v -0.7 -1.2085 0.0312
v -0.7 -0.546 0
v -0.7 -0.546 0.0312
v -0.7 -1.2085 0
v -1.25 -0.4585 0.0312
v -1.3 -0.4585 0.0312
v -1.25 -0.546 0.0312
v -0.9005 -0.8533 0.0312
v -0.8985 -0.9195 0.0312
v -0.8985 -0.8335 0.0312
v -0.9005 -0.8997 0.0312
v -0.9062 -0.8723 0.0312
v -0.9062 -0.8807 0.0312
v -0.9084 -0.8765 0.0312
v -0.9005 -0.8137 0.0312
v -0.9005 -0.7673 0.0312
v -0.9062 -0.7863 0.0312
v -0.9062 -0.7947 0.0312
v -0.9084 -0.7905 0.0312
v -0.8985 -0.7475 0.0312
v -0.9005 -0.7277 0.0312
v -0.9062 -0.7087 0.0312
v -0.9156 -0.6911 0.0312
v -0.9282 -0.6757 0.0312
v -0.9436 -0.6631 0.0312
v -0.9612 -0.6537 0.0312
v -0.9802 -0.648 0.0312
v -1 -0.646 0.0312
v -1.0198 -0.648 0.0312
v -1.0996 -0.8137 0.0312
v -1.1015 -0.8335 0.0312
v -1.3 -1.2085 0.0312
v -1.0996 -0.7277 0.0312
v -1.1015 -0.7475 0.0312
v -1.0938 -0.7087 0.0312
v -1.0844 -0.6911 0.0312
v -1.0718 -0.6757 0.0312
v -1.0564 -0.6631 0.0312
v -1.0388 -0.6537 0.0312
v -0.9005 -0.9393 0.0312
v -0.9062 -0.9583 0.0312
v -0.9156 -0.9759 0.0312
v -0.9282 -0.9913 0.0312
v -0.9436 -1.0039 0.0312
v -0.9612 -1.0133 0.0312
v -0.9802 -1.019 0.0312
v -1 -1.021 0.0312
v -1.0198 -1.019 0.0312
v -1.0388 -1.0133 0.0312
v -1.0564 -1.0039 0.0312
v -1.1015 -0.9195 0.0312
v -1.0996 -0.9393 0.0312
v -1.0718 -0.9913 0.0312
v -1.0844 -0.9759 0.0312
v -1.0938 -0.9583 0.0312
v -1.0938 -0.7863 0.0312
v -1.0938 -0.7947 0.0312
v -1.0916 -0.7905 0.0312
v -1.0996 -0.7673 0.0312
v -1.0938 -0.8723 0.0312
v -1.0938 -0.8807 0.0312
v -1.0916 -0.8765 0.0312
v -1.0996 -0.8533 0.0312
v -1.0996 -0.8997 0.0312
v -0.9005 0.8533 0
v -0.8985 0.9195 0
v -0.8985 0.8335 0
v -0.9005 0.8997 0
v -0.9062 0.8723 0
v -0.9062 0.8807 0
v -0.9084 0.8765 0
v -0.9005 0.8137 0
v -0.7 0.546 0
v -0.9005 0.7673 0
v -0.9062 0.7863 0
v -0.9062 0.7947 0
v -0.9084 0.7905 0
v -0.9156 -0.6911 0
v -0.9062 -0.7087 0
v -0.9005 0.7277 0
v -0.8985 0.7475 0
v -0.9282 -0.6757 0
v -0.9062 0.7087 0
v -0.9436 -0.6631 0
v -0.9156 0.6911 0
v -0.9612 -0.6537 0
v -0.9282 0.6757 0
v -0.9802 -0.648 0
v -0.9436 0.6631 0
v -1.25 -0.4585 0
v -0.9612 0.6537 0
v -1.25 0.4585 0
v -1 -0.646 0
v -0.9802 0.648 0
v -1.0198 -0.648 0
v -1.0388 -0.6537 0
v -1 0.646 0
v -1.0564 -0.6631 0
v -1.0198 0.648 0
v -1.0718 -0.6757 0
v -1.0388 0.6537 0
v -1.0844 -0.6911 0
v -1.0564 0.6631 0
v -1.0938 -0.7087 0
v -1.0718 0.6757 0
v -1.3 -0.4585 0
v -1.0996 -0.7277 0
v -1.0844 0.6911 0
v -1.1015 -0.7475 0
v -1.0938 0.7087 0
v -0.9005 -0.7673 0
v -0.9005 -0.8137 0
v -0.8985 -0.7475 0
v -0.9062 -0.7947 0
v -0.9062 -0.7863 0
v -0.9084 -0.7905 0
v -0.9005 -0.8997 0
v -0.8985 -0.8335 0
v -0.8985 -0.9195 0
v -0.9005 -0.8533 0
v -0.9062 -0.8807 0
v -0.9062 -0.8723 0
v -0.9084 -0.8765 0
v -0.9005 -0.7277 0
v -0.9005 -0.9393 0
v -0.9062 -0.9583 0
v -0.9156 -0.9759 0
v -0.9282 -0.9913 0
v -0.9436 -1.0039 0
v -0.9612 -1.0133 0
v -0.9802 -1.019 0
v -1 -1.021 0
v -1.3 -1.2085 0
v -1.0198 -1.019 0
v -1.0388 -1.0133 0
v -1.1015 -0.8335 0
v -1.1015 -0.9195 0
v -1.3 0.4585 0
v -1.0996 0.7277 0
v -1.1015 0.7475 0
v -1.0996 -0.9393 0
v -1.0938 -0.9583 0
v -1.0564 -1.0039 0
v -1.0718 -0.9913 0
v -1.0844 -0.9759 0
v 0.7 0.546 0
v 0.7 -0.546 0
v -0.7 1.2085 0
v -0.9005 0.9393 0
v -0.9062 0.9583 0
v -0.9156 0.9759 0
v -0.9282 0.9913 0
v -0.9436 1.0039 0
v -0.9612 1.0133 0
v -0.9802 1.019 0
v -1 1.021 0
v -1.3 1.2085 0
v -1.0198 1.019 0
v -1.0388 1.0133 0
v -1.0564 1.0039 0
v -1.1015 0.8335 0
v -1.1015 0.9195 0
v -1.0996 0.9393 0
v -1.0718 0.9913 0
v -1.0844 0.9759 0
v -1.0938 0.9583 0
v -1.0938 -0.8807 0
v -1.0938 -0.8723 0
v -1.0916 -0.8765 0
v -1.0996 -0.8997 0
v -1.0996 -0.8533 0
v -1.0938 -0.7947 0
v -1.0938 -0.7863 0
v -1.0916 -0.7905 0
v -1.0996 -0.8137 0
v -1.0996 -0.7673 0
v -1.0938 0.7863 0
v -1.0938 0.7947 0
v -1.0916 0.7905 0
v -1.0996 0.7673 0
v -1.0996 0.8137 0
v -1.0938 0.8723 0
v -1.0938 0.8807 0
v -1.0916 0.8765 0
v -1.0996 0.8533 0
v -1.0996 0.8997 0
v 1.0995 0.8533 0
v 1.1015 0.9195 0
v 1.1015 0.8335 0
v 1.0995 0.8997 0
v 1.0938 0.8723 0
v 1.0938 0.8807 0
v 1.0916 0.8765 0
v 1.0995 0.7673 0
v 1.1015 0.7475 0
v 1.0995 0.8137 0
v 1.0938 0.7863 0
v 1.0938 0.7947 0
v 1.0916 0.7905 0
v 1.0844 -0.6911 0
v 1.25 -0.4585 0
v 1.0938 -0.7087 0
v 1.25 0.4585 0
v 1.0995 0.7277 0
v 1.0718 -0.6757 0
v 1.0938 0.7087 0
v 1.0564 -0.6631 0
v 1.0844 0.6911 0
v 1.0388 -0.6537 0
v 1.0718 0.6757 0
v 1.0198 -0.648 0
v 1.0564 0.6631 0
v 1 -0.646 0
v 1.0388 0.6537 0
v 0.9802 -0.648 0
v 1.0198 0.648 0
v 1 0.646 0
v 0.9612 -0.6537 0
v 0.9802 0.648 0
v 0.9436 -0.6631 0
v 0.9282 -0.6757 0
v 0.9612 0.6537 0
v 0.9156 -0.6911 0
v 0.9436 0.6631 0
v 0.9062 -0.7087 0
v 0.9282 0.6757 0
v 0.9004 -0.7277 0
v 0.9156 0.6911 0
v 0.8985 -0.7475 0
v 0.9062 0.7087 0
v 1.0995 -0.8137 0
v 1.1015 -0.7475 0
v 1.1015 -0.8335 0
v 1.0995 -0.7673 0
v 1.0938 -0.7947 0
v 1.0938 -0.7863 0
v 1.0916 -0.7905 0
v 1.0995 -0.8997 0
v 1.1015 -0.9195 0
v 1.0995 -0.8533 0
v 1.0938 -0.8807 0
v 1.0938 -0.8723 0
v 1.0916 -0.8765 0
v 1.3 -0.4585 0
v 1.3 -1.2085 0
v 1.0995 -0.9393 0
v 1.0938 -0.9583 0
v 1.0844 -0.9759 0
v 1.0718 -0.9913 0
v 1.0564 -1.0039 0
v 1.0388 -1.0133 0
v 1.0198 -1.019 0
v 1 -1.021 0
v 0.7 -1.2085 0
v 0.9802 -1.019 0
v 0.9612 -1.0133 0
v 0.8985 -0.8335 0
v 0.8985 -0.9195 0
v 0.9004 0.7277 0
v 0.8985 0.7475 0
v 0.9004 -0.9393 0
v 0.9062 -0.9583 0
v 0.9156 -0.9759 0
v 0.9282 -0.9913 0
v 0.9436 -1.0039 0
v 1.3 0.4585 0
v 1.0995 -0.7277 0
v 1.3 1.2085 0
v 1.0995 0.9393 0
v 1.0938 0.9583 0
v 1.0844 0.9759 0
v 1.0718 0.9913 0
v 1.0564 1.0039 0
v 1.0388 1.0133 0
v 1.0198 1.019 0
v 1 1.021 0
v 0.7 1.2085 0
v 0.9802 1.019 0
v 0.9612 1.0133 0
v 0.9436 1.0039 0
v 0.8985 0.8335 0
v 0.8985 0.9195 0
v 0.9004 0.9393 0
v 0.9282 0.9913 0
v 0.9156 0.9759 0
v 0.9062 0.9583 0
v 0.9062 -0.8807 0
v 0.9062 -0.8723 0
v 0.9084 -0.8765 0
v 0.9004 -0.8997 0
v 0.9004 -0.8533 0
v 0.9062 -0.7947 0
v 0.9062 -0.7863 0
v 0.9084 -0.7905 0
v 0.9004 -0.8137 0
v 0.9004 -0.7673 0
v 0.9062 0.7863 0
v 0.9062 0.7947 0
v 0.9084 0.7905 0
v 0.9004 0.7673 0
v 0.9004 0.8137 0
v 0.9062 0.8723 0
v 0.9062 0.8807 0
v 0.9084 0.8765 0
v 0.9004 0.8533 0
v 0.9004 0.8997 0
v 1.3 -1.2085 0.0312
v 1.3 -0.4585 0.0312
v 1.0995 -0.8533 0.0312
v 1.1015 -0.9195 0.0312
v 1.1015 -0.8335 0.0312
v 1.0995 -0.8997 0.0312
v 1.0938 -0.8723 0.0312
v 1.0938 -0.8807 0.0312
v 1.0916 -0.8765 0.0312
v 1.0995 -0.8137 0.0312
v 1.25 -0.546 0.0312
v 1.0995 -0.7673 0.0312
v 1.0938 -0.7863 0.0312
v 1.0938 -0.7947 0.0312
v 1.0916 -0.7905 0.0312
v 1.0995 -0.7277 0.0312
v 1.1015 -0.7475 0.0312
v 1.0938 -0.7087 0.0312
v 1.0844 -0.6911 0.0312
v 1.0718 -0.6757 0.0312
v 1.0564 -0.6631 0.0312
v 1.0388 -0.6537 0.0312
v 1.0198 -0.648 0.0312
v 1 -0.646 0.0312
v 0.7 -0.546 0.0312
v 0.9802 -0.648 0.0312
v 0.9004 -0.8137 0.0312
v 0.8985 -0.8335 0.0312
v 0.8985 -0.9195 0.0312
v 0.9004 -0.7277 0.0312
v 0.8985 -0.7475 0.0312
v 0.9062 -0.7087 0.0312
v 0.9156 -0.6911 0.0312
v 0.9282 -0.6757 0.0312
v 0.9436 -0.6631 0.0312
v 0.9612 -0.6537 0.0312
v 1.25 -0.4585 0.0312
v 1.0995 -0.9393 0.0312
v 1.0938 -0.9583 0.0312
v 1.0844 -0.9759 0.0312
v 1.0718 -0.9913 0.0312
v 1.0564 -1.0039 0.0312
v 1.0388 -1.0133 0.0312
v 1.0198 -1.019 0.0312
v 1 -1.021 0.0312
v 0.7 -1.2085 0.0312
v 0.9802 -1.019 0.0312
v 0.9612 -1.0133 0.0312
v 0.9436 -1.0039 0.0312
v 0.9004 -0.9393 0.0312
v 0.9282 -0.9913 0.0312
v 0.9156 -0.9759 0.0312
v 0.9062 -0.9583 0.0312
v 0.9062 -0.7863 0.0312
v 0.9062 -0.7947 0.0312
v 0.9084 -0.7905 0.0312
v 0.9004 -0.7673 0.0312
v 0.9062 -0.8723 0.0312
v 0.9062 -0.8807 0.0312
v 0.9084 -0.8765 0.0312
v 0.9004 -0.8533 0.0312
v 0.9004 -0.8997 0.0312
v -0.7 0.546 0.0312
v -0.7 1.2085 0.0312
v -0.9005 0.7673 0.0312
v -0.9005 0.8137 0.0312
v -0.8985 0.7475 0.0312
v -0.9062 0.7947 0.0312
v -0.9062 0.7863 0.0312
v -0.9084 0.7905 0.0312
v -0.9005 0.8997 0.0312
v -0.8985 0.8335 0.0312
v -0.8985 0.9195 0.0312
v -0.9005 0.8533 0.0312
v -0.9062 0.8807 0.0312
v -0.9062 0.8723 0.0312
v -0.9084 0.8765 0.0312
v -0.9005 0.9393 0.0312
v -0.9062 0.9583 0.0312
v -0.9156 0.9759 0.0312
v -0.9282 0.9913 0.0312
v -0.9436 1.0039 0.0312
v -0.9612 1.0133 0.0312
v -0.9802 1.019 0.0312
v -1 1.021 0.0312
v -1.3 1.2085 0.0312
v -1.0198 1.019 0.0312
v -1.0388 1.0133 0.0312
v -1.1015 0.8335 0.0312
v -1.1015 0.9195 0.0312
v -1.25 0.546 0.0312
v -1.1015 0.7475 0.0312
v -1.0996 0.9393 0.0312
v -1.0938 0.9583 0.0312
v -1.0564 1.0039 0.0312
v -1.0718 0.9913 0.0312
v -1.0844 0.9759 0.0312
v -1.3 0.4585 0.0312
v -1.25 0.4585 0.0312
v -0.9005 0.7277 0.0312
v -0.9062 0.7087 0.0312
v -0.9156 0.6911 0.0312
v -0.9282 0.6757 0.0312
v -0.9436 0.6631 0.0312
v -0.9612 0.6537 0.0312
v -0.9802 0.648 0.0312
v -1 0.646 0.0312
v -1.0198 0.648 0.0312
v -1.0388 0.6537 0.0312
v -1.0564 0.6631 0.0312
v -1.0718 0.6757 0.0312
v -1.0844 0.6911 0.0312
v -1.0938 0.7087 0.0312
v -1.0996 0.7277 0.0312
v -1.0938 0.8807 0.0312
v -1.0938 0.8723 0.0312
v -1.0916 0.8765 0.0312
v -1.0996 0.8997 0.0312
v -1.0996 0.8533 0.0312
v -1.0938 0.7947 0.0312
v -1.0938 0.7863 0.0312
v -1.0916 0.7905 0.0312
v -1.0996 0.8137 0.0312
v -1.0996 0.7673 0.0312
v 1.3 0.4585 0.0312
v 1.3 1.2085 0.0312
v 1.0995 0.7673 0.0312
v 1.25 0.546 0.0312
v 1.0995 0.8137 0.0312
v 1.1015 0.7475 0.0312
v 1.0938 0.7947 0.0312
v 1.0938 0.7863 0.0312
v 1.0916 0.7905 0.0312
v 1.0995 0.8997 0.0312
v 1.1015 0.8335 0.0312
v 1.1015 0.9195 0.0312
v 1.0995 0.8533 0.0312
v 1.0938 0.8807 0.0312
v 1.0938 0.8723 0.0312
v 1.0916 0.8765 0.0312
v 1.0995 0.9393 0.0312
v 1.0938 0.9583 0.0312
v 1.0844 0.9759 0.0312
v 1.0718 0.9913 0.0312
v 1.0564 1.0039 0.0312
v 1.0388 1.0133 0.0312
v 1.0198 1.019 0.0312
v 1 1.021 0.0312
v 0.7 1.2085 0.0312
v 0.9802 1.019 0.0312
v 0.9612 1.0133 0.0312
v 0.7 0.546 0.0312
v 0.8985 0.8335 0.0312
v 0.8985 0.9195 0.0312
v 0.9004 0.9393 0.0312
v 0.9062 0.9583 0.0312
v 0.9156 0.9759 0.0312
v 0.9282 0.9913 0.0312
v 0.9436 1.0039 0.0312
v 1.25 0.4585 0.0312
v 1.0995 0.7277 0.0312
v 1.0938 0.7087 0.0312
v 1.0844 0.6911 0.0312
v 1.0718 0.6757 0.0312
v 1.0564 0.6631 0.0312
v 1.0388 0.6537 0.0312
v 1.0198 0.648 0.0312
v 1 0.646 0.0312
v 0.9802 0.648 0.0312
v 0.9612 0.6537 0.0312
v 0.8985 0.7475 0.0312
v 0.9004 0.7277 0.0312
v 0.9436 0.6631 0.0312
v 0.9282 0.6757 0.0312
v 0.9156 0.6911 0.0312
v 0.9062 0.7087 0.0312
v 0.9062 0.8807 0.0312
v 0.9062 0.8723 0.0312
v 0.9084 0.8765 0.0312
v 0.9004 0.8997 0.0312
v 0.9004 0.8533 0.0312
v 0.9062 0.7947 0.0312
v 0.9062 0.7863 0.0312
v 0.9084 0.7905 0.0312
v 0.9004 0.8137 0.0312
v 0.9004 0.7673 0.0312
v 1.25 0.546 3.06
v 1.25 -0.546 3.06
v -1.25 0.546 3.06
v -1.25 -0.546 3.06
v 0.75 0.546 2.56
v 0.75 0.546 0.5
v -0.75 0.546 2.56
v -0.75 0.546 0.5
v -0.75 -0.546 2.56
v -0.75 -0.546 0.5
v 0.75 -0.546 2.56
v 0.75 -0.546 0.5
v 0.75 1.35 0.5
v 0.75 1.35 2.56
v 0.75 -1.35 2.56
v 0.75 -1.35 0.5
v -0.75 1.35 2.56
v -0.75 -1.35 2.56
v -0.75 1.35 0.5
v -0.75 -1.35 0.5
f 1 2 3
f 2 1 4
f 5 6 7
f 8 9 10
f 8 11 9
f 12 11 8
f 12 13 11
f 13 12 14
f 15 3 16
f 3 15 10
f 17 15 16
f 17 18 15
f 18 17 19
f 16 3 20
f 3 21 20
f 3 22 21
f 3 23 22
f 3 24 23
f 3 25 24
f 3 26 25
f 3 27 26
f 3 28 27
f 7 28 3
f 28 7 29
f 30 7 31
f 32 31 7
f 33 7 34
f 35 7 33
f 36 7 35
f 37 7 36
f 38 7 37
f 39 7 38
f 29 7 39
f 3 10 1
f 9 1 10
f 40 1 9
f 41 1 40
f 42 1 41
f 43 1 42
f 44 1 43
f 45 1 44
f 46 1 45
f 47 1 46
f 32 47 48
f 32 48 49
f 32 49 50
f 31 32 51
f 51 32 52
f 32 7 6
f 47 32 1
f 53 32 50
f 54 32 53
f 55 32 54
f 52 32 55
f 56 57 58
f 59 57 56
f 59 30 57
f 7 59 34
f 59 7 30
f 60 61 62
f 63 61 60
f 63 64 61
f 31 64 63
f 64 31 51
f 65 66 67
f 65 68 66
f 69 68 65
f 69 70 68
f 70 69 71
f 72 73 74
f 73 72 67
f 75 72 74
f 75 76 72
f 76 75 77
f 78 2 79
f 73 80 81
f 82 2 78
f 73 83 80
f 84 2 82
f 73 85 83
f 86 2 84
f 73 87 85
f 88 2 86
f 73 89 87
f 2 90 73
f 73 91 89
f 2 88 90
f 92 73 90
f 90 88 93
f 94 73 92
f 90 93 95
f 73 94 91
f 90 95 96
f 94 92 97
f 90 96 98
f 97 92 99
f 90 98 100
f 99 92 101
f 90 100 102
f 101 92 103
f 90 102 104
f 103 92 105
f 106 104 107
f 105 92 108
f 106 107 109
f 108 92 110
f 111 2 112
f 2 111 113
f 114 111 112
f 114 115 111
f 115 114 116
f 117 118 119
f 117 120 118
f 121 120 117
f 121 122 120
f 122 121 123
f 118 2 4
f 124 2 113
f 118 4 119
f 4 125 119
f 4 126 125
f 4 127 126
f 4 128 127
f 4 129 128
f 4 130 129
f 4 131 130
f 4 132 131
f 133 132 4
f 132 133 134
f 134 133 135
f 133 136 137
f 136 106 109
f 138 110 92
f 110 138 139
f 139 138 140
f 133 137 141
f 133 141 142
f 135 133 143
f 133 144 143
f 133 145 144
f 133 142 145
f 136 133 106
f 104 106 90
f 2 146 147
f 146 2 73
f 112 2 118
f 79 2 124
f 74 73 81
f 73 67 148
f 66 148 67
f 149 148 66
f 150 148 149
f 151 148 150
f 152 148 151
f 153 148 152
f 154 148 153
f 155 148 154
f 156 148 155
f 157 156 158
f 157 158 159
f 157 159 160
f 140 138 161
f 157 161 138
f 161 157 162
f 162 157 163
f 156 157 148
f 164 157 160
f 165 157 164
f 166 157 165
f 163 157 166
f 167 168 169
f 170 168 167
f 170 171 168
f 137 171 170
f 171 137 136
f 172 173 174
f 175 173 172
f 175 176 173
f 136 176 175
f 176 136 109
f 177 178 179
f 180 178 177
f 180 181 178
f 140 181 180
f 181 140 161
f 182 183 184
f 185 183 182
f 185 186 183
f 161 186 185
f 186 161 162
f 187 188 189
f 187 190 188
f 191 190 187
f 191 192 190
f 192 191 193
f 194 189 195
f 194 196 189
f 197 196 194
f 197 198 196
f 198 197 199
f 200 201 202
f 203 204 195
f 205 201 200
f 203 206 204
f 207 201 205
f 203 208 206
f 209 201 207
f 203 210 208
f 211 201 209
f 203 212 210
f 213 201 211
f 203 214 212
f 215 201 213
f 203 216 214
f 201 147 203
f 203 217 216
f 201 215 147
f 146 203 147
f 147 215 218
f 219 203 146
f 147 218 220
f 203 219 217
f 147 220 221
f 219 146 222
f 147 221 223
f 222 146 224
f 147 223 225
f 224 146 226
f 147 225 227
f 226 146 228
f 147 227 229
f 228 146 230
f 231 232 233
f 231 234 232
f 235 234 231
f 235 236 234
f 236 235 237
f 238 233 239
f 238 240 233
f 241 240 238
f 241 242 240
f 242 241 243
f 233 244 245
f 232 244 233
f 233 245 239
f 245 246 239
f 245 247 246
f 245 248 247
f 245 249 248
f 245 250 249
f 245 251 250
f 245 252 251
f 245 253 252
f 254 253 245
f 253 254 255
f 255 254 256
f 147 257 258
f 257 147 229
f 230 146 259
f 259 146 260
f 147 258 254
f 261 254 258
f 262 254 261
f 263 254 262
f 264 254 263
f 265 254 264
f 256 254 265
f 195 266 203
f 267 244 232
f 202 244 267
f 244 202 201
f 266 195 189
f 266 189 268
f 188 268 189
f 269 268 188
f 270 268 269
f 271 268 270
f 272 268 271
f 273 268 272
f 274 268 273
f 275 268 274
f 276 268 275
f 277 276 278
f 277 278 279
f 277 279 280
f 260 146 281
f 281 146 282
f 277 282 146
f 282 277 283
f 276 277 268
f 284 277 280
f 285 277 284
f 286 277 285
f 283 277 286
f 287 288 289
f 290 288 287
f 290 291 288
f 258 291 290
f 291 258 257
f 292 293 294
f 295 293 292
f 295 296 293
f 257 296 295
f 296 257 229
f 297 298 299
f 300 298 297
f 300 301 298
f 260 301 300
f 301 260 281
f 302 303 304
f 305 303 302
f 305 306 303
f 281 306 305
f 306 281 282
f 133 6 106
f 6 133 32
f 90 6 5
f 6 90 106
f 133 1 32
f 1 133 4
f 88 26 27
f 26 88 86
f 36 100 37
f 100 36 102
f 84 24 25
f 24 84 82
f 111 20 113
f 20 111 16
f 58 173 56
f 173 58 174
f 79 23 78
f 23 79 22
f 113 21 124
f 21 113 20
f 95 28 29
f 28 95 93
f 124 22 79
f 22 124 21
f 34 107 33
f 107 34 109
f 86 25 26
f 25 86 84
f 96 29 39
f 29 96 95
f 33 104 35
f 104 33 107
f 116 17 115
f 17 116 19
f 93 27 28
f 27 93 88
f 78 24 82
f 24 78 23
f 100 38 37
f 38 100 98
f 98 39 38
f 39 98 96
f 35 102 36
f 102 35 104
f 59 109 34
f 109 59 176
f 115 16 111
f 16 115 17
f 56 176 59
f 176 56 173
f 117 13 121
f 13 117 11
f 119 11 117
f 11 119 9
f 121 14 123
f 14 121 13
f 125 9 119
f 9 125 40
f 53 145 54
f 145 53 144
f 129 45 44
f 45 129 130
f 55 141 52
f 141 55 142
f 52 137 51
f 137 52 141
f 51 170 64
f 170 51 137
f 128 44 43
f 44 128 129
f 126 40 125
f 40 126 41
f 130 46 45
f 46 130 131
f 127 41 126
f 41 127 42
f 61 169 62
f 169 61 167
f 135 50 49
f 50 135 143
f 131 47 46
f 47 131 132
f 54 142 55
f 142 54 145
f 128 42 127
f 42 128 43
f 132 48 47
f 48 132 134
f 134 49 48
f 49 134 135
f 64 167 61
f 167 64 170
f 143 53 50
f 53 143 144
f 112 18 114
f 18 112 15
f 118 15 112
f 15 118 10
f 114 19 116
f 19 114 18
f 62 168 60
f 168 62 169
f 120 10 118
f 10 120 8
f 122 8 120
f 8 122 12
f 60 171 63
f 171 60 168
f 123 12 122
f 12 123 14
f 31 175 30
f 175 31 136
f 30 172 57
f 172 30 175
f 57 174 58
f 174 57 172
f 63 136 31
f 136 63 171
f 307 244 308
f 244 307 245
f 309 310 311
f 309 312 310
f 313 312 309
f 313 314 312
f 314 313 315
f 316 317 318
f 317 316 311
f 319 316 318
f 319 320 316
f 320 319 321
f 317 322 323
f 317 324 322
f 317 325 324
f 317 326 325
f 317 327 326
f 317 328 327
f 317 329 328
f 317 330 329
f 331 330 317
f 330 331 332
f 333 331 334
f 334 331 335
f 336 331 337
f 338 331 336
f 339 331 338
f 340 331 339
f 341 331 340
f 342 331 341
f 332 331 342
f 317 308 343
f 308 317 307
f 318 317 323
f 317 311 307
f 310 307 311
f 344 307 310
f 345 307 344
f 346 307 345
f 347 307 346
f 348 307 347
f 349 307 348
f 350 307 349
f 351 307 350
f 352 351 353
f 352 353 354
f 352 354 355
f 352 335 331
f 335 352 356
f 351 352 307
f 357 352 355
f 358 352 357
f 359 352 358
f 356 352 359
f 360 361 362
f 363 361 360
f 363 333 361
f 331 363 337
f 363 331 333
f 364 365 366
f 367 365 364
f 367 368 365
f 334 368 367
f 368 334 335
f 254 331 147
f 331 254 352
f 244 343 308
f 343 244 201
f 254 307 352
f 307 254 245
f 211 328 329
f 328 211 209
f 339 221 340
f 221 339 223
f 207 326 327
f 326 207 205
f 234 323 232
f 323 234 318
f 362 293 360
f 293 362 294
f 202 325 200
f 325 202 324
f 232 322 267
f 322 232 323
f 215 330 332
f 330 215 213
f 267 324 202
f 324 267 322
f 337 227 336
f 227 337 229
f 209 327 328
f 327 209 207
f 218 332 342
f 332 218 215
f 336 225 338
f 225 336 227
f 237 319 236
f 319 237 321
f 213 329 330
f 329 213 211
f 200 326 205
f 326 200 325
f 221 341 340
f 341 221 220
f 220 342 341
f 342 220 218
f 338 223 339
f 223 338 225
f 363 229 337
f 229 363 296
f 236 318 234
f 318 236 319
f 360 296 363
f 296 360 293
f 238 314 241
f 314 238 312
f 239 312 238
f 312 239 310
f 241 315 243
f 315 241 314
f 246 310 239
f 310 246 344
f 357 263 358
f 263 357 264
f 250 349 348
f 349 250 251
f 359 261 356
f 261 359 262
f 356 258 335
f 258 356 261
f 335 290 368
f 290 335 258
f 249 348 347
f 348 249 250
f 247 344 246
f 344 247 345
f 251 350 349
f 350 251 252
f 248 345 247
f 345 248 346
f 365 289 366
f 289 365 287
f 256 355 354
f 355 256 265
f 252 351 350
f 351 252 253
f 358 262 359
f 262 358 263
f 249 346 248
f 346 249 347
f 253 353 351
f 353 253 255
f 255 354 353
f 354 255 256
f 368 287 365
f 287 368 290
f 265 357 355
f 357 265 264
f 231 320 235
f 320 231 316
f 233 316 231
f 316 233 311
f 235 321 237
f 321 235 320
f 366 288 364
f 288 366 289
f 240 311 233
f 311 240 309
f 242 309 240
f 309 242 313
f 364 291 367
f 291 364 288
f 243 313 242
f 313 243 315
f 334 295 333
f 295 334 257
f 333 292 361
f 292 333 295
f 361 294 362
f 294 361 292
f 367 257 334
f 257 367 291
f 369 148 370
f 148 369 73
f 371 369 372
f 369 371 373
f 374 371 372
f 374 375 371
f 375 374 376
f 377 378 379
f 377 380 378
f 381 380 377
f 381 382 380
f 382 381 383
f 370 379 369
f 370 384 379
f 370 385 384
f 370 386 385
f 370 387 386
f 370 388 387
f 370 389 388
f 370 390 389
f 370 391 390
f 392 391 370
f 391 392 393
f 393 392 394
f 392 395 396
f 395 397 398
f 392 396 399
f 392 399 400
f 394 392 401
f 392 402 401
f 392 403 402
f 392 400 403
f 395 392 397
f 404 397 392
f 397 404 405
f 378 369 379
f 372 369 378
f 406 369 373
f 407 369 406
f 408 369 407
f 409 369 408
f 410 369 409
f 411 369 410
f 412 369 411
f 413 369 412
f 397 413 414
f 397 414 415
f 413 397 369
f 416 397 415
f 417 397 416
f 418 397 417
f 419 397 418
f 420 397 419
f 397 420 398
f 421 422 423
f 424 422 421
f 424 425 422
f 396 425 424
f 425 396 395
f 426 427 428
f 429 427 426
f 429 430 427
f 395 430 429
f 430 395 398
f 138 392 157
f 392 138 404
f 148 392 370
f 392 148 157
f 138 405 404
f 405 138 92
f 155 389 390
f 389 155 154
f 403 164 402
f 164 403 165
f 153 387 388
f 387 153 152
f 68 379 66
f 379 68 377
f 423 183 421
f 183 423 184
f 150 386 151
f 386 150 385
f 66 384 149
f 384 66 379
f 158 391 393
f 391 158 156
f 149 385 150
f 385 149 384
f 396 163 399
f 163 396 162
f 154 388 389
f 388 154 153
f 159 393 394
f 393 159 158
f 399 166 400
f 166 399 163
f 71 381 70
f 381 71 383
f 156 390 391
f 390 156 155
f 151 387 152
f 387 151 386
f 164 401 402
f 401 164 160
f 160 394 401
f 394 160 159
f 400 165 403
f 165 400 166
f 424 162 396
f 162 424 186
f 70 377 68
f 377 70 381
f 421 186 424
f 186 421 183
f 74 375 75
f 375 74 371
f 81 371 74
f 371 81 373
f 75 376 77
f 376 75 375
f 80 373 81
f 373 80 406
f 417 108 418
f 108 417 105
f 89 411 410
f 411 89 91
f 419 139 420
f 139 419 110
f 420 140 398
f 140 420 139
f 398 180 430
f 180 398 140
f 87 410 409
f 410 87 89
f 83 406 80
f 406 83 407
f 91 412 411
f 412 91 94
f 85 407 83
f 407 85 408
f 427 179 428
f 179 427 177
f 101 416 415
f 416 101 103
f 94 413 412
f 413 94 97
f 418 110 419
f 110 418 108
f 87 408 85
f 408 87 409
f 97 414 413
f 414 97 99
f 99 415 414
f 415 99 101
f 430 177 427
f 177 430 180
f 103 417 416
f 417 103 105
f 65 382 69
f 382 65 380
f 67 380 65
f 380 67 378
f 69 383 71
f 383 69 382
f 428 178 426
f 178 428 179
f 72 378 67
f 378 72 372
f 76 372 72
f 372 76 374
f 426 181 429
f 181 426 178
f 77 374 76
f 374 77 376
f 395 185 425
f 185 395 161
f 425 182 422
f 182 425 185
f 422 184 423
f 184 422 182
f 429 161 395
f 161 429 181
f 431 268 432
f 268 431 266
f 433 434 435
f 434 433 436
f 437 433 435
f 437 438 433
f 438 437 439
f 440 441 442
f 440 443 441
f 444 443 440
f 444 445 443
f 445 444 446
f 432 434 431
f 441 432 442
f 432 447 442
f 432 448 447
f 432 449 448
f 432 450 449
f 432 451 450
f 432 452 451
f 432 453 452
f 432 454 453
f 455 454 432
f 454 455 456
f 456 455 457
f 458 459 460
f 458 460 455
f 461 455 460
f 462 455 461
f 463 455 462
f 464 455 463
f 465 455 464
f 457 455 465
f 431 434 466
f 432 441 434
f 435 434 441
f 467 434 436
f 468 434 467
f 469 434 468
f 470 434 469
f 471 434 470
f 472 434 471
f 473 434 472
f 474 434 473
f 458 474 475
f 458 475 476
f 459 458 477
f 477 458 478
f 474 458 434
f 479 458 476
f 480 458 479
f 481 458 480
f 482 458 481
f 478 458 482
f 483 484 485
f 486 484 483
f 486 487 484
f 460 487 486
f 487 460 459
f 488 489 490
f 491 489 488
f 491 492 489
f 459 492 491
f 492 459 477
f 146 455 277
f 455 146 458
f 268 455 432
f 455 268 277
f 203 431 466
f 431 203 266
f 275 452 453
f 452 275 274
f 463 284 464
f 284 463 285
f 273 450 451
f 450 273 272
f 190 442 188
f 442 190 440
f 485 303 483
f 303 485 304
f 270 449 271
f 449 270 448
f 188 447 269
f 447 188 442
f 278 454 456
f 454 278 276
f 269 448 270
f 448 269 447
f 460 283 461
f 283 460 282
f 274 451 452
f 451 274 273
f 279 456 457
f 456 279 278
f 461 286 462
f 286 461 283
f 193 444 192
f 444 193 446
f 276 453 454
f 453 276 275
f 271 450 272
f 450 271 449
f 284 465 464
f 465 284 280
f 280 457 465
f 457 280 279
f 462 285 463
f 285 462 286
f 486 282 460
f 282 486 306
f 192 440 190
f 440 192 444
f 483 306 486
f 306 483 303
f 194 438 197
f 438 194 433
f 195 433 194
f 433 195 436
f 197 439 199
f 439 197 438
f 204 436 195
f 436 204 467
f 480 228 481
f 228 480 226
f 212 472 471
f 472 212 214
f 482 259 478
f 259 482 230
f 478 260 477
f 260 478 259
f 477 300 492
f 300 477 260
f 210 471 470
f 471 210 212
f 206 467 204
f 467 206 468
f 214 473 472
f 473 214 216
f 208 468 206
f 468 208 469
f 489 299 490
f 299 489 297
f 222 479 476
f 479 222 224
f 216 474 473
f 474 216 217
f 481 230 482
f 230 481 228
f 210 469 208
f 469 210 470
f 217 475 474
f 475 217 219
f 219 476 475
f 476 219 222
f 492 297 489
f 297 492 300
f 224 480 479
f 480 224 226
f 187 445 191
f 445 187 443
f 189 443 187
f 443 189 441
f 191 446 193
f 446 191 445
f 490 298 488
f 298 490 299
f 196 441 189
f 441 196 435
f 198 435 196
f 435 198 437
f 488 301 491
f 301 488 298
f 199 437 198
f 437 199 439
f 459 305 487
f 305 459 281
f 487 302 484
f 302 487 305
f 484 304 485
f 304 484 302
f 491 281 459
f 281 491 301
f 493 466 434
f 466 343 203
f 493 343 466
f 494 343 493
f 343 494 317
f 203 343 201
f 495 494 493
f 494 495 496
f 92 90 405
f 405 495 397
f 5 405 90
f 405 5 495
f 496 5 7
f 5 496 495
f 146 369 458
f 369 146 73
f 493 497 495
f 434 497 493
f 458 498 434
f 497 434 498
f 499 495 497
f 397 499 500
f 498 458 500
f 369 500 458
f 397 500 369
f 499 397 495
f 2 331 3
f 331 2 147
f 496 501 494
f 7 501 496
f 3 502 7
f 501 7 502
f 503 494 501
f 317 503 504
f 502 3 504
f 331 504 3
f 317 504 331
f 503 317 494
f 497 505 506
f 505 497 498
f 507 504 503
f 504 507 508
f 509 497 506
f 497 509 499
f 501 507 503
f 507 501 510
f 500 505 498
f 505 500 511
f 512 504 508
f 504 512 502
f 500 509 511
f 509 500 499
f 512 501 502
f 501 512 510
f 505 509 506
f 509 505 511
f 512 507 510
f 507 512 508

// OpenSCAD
/* Hammond 1608A audio */


$fn=32;
e = 0.001;

/* datasheet dims */
A = 2.500;
B = 2.700;
C = 3.060;;
D = 2.000;
E = 1.667;
GX = 0.203;
GY = 0.375;

/* core dims (estimated) */
core_X = A;
core_Y = E-GY-0.2;
core_Z = C;

/* bell dims (estimated) */
bell_X = A-1.0;
bell_Y = B;
bell_Z = C-1.0;
bell_up = 0.5;

/* mounting tabs */
tab_X = 0.6;
tab_Y = 0.75;
tab_Z = 0.03125;

module tab() {
     difference() {
	  cube( [tab_X, tab_Y, tab_Z]);
	  translate( [tab_X/2, tab_Y/2+GY/2-GX/2, -e])
	       cylinder( d=GX, h=tab_Z+2*e);
	  translate( [tab_X/2, tab_Y/2-GY/2+GX/2, -e])
	       cylinder( d=GX, h=tab_Z+2*e);
	  translate( [tab_X/2, tab_Y/2, -e])
	       cylinder( d=GX, h=tab_Z+2*e);
     }
}

module 272hx() {
     color( [0.3, 0.3, 0.3]) {
	  /* core */
	  translate( [-core_X/2, -core_Y/2, 0])
	       cube( [core_X, core_Y, core_Z]);
	  /* bell */
	  translate( [-bell_X/2, -bell_Y/2, bell_up])
	       cube( [bell_X, bell_Y, bell_Z]);
	  translate( [-(D/2)-tab_X/2, -E/2-tab_Y/2, 0])
	       tab();
	  translate( [(D/2)-tab_X/2, -E/2-tab_Y/2, 0])
	       tab();
	  translate( [-(D/2)-tab_X/2, E/2-tab_Y/2, 0])
	       tab();
	  translate( [(D/2)-tab_X/2, E/2-tab_Y/2, 0])
	       tab();
     }
}


272hx();
